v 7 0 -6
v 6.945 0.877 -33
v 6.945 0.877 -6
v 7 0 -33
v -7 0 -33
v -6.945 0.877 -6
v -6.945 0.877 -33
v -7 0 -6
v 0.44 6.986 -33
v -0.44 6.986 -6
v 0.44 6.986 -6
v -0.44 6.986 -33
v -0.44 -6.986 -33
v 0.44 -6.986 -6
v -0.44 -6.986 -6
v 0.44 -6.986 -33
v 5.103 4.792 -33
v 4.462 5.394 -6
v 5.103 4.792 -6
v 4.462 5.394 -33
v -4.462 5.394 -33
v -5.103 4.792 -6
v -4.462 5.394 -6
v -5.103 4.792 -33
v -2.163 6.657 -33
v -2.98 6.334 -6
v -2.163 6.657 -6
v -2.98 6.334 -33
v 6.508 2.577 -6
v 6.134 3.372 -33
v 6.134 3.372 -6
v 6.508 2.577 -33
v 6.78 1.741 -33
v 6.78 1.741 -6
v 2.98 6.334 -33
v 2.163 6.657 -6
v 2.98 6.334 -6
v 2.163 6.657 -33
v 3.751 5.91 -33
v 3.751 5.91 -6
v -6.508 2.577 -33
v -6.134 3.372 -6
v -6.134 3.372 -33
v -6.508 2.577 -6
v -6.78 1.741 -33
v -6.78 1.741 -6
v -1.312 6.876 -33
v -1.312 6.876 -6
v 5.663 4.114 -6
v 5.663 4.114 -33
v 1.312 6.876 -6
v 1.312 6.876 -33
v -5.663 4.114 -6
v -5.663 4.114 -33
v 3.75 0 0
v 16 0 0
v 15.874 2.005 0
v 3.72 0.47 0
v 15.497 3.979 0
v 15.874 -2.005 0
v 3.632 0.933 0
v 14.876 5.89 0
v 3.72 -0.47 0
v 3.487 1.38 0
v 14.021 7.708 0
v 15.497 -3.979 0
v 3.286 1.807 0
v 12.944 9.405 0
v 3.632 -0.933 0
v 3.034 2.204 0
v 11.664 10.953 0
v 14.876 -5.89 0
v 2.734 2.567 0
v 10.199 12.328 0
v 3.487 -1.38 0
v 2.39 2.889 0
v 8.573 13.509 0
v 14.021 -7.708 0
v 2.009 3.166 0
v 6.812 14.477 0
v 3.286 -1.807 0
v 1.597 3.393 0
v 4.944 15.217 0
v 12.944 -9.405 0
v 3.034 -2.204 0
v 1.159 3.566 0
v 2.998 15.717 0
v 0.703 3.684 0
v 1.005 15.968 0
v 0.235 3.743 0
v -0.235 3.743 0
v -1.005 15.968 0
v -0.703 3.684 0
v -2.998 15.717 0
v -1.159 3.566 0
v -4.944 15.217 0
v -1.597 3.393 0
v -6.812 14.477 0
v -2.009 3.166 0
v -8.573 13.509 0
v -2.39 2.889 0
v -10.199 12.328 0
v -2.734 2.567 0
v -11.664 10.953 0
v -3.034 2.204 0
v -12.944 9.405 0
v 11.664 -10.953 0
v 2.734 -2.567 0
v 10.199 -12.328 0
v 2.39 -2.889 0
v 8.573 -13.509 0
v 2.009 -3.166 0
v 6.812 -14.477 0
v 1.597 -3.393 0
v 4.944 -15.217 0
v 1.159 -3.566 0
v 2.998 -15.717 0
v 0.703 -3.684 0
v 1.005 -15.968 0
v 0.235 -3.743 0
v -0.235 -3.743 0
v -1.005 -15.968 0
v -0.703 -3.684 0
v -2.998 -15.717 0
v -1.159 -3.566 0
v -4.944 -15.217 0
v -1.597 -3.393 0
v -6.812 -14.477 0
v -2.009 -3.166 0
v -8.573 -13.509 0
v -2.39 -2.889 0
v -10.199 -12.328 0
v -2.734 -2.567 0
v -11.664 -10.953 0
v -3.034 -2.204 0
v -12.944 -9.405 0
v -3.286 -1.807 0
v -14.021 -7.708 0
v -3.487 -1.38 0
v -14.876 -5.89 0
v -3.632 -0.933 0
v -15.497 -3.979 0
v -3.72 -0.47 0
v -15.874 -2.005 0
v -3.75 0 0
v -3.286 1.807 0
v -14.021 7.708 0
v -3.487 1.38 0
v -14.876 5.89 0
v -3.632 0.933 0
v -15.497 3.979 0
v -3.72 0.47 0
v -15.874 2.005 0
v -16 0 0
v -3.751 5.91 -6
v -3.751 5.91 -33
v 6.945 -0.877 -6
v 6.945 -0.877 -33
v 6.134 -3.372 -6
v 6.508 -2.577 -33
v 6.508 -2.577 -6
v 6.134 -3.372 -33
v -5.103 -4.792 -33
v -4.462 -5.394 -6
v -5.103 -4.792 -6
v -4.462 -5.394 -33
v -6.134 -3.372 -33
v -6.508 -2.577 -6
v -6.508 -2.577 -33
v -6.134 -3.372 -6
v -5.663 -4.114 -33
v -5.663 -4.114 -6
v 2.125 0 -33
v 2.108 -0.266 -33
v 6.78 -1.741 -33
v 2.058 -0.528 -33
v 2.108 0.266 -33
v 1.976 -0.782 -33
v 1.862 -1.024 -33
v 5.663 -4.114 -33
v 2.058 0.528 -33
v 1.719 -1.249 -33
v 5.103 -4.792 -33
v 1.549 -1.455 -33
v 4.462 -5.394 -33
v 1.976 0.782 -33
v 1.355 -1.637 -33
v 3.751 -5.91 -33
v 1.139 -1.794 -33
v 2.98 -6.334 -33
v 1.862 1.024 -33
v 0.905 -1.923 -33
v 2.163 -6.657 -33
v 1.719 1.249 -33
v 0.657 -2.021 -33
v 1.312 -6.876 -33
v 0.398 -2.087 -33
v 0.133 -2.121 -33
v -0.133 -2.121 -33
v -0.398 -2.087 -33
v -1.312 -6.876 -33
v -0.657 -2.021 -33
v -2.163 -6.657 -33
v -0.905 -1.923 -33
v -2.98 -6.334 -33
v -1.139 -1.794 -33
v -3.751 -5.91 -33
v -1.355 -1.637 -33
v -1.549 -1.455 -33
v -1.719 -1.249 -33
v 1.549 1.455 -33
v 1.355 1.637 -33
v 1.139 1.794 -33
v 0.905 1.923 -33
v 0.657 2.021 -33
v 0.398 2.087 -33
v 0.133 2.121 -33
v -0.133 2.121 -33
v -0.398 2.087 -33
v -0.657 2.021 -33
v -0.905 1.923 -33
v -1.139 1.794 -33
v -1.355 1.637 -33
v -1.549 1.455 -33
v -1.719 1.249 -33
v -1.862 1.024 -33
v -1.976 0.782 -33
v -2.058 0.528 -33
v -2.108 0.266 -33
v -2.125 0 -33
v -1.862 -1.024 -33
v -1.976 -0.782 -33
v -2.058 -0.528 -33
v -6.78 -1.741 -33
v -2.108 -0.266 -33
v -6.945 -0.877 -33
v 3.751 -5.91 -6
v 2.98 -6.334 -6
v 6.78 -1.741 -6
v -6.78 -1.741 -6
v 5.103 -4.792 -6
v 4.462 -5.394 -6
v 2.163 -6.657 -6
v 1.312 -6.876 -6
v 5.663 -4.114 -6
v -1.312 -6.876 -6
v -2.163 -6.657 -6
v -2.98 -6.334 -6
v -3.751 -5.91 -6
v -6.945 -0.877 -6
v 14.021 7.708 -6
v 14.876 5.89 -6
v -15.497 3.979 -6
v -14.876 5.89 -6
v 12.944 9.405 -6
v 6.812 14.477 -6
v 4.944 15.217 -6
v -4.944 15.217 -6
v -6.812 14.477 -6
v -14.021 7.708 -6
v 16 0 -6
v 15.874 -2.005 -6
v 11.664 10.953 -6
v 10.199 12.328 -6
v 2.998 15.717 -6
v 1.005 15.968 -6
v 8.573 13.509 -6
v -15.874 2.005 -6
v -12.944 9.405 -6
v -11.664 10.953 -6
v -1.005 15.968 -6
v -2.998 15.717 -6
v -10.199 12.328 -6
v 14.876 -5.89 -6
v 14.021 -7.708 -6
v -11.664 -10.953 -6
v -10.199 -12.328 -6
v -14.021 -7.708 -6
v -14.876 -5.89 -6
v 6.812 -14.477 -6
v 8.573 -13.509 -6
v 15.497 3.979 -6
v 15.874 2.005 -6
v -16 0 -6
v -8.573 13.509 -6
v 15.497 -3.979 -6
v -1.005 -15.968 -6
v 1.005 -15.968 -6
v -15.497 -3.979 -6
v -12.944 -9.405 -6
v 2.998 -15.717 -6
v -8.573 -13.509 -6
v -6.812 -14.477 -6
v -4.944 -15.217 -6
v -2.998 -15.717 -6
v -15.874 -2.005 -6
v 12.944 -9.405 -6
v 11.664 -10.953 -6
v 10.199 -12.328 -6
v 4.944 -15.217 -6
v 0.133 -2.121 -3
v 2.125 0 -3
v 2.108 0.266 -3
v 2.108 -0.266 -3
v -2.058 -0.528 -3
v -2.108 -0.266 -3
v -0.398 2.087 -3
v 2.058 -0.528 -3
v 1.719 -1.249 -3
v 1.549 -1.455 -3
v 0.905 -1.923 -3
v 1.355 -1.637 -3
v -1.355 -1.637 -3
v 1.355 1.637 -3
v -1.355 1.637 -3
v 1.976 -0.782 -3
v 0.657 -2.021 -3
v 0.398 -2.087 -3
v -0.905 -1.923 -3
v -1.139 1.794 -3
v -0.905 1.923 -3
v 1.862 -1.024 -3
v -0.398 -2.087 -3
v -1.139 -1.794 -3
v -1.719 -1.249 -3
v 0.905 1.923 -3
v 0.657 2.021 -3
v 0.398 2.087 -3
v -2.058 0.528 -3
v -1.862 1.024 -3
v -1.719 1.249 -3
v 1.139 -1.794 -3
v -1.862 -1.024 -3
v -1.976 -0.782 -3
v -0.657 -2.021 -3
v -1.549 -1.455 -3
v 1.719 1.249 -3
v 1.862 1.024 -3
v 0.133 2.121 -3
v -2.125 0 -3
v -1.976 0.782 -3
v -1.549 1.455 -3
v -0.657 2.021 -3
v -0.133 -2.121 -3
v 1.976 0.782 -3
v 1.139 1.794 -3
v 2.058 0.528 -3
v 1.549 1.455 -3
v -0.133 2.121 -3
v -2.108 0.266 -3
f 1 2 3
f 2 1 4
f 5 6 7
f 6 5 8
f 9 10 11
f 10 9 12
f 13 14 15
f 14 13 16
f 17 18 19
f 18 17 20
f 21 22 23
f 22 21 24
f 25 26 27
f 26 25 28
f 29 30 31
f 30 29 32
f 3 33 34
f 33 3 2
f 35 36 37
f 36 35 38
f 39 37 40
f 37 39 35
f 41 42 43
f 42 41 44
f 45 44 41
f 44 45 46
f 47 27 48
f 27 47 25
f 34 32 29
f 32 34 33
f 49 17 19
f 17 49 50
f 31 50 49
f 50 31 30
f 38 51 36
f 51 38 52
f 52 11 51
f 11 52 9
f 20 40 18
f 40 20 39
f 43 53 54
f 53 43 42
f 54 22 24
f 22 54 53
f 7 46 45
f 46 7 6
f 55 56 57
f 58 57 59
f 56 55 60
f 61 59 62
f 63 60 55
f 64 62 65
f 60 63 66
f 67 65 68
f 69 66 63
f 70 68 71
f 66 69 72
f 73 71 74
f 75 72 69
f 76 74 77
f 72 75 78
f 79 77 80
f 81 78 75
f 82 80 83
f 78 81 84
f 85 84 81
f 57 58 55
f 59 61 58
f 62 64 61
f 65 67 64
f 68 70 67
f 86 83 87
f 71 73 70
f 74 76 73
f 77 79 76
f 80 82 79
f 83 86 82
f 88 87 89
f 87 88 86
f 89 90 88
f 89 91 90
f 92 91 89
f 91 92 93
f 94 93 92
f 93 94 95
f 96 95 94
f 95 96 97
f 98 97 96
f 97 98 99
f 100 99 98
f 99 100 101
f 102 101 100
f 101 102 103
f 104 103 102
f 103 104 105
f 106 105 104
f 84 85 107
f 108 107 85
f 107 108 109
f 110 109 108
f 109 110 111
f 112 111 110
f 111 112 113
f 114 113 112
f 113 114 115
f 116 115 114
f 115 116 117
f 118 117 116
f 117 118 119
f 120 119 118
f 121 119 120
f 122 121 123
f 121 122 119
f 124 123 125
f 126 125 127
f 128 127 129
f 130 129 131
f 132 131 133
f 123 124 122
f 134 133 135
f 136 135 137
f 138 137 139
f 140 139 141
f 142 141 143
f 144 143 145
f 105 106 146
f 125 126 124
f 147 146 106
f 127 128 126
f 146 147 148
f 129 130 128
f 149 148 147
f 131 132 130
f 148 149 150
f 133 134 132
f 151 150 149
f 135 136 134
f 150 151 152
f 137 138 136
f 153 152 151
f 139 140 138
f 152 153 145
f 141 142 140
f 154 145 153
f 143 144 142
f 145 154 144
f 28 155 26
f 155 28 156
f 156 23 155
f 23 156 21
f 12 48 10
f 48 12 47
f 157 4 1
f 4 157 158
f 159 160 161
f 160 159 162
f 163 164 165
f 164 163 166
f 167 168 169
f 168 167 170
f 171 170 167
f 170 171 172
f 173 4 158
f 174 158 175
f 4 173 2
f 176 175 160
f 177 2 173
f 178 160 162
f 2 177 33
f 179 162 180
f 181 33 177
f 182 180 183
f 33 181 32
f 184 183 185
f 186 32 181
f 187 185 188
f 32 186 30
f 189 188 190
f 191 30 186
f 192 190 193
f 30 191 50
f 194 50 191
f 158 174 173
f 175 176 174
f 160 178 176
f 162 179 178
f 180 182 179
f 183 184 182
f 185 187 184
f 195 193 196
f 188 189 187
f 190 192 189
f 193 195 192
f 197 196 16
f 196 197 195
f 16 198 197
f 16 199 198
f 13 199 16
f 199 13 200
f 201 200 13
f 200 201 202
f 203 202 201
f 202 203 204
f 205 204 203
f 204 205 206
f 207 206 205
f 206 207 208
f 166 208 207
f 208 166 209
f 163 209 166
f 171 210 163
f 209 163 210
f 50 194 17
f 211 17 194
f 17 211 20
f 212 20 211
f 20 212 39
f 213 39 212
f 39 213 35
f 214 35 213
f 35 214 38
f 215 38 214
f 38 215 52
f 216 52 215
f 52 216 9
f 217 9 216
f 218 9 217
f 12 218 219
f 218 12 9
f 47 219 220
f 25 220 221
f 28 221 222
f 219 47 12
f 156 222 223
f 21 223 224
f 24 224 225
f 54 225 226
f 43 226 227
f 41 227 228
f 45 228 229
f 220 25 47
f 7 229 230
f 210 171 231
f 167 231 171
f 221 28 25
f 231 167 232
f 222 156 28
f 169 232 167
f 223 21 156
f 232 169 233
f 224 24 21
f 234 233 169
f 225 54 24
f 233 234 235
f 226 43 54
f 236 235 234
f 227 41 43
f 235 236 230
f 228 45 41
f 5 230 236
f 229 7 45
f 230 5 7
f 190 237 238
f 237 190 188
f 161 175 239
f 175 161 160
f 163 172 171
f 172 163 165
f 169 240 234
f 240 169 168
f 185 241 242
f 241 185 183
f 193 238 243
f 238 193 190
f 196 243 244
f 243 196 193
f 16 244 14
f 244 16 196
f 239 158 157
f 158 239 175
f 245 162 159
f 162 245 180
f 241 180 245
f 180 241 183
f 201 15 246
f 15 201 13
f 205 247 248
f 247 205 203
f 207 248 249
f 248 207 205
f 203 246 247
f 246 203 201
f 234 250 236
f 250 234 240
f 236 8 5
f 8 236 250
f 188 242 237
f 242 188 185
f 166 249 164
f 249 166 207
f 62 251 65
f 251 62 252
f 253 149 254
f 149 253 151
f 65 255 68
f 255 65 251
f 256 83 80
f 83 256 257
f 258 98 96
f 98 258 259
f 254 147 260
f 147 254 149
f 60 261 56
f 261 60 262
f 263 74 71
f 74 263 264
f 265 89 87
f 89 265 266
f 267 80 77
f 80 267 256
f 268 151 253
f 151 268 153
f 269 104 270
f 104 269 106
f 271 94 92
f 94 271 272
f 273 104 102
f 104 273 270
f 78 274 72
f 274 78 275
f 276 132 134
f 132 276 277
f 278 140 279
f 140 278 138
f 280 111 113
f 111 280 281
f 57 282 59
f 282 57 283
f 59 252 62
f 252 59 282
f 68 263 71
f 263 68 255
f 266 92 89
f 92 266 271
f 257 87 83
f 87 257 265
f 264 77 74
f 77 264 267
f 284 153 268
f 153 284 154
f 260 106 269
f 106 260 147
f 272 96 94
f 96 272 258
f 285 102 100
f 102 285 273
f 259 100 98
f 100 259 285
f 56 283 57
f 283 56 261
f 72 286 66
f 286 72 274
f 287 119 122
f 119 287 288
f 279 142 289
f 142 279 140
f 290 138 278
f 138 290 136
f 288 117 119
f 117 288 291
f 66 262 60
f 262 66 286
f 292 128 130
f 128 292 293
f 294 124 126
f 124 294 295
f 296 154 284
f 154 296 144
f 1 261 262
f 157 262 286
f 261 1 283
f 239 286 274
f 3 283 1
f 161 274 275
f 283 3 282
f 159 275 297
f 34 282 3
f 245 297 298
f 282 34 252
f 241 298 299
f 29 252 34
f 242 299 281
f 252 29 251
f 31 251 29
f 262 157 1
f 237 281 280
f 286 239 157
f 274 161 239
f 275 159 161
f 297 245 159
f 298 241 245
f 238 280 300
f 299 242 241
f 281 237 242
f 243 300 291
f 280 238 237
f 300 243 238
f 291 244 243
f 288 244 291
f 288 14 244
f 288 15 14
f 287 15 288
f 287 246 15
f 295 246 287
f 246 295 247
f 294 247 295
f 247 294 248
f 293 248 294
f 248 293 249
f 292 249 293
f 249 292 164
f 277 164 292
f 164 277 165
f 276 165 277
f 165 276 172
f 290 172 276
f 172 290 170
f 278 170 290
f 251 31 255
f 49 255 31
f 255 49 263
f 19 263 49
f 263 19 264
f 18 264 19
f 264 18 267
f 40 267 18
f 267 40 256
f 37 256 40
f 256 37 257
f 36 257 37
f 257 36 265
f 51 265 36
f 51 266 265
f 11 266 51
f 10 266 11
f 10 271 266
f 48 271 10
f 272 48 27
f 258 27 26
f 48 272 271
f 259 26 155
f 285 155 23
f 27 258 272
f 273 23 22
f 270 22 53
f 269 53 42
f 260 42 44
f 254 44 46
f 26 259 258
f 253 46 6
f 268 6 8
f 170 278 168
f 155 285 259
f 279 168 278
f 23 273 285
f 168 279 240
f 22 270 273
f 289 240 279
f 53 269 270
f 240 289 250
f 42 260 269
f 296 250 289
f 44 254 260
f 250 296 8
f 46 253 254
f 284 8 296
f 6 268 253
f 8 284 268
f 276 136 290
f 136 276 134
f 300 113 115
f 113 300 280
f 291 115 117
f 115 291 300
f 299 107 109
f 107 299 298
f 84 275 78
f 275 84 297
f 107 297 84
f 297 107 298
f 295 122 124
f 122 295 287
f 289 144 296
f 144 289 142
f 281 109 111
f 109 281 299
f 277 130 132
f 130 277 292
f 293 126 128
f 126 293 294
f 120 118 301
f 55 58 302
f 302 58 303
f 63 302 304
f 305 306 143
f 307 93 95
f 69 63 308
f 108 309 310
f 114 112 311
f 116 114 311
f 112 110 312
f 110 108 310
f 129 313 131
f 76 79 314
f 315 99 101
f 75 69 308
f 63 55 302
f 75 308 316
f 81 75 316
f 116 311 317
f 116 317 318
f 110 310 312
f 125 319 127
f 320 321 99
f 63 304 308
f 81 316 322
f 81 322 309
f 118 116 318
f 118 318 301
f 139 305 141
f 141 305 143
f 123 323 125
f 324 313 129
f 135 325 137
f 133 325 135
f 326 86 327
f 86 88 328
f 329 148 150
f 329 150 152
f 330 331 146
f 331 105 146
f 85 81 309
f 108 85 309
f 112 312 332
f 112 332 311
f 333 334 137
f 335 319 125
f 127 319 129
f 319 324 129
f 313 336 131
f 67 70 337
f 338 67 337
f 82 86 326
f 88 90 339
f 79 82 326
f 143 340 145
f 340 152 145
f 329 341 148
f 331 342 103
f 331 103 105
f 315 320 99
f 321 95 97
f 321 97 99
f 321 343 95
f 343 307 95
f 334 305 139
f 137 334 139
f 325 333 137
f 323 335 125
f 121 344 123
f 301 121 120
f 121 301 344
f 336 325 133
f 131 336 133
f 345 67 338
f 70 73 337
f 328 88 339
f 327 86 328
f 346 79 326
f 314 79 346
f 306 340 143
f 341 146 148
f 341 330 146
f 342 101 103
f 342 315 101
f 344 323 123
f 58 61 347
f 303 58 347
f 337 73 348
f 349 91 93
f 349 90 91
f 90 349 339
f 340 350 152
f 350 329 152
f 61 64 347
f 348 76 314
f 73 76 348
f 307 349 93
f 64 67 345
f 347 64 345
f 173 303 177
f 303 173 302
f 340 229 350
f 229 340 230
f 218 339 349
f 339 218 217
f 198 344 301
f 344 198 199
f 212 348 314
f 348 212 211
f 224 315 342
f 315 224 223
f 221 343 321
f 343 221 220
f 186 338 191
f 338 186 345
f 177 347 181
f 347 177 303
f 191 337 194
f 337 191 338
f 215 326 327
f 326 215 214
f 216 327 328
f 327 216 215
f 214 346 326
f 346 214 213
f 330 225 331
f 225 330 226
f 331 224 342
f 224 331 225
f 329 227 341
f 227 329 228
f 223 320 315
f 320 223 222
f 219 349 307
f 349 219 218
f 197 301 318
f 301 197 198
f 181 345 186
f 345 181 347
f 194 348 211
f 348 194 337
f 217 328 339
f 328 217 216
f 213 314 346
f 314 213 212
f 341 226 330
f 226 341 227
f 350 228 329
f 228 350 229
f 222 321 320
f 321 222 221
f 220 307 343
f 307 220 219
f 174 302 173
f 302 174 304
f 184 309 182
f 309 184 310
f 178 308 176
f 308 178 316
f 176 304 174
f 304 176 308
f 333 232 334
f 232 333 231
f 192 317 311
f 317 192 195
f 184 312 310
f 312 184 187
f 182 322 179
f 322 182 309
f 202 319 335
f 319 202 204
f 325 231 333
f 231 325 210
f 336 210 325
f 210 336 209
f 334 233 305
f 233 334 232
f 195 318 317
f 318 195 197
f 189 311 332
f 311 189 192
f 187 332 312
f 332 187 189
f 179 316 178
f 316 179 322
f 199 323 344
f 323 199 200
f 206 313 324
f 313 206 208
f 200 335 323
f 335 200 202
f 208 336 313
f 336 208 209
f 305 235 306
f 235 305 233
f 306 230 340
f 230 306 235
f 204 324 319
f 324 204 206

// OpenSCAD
$fn = 50;


difference() {
	union() {
		translate(v = [0, 0, -33.0000000000]) {
			cylinder(h = 33, r = 7.0000000000);
		}
		translate(v = [0, 0, -6.0000000000]) {
			cylinder(h = 6, r = 16.0000000000);
		}
	}
	union() {
		translate(v = [0, 0, 0]) {
			rotate(a = [0, 0, 0]) {
				difference() {
					union() {
						#translate(v = [0, 0, -33.0000000000]) {
							cylinder(h = 33, r = 2.0000000000);
						}
						#translate(v = [0, 0, -3]) {
							cylinder(h = 3, r = 7.0000000000, r1 = 2.1250000000, r2 = 3.7500000000);
						}
						#translate(v = [0, 0, -33.0000000000]) {
							cylinder(h = 33, r = 2.1250000000);
						}
						#translate(v = [0, 0, -33.0000000000]) {
							cylinder(h = 33, r = 2.0000000000);
						}
					}
					union();
				}
			}
		}
	}
}
